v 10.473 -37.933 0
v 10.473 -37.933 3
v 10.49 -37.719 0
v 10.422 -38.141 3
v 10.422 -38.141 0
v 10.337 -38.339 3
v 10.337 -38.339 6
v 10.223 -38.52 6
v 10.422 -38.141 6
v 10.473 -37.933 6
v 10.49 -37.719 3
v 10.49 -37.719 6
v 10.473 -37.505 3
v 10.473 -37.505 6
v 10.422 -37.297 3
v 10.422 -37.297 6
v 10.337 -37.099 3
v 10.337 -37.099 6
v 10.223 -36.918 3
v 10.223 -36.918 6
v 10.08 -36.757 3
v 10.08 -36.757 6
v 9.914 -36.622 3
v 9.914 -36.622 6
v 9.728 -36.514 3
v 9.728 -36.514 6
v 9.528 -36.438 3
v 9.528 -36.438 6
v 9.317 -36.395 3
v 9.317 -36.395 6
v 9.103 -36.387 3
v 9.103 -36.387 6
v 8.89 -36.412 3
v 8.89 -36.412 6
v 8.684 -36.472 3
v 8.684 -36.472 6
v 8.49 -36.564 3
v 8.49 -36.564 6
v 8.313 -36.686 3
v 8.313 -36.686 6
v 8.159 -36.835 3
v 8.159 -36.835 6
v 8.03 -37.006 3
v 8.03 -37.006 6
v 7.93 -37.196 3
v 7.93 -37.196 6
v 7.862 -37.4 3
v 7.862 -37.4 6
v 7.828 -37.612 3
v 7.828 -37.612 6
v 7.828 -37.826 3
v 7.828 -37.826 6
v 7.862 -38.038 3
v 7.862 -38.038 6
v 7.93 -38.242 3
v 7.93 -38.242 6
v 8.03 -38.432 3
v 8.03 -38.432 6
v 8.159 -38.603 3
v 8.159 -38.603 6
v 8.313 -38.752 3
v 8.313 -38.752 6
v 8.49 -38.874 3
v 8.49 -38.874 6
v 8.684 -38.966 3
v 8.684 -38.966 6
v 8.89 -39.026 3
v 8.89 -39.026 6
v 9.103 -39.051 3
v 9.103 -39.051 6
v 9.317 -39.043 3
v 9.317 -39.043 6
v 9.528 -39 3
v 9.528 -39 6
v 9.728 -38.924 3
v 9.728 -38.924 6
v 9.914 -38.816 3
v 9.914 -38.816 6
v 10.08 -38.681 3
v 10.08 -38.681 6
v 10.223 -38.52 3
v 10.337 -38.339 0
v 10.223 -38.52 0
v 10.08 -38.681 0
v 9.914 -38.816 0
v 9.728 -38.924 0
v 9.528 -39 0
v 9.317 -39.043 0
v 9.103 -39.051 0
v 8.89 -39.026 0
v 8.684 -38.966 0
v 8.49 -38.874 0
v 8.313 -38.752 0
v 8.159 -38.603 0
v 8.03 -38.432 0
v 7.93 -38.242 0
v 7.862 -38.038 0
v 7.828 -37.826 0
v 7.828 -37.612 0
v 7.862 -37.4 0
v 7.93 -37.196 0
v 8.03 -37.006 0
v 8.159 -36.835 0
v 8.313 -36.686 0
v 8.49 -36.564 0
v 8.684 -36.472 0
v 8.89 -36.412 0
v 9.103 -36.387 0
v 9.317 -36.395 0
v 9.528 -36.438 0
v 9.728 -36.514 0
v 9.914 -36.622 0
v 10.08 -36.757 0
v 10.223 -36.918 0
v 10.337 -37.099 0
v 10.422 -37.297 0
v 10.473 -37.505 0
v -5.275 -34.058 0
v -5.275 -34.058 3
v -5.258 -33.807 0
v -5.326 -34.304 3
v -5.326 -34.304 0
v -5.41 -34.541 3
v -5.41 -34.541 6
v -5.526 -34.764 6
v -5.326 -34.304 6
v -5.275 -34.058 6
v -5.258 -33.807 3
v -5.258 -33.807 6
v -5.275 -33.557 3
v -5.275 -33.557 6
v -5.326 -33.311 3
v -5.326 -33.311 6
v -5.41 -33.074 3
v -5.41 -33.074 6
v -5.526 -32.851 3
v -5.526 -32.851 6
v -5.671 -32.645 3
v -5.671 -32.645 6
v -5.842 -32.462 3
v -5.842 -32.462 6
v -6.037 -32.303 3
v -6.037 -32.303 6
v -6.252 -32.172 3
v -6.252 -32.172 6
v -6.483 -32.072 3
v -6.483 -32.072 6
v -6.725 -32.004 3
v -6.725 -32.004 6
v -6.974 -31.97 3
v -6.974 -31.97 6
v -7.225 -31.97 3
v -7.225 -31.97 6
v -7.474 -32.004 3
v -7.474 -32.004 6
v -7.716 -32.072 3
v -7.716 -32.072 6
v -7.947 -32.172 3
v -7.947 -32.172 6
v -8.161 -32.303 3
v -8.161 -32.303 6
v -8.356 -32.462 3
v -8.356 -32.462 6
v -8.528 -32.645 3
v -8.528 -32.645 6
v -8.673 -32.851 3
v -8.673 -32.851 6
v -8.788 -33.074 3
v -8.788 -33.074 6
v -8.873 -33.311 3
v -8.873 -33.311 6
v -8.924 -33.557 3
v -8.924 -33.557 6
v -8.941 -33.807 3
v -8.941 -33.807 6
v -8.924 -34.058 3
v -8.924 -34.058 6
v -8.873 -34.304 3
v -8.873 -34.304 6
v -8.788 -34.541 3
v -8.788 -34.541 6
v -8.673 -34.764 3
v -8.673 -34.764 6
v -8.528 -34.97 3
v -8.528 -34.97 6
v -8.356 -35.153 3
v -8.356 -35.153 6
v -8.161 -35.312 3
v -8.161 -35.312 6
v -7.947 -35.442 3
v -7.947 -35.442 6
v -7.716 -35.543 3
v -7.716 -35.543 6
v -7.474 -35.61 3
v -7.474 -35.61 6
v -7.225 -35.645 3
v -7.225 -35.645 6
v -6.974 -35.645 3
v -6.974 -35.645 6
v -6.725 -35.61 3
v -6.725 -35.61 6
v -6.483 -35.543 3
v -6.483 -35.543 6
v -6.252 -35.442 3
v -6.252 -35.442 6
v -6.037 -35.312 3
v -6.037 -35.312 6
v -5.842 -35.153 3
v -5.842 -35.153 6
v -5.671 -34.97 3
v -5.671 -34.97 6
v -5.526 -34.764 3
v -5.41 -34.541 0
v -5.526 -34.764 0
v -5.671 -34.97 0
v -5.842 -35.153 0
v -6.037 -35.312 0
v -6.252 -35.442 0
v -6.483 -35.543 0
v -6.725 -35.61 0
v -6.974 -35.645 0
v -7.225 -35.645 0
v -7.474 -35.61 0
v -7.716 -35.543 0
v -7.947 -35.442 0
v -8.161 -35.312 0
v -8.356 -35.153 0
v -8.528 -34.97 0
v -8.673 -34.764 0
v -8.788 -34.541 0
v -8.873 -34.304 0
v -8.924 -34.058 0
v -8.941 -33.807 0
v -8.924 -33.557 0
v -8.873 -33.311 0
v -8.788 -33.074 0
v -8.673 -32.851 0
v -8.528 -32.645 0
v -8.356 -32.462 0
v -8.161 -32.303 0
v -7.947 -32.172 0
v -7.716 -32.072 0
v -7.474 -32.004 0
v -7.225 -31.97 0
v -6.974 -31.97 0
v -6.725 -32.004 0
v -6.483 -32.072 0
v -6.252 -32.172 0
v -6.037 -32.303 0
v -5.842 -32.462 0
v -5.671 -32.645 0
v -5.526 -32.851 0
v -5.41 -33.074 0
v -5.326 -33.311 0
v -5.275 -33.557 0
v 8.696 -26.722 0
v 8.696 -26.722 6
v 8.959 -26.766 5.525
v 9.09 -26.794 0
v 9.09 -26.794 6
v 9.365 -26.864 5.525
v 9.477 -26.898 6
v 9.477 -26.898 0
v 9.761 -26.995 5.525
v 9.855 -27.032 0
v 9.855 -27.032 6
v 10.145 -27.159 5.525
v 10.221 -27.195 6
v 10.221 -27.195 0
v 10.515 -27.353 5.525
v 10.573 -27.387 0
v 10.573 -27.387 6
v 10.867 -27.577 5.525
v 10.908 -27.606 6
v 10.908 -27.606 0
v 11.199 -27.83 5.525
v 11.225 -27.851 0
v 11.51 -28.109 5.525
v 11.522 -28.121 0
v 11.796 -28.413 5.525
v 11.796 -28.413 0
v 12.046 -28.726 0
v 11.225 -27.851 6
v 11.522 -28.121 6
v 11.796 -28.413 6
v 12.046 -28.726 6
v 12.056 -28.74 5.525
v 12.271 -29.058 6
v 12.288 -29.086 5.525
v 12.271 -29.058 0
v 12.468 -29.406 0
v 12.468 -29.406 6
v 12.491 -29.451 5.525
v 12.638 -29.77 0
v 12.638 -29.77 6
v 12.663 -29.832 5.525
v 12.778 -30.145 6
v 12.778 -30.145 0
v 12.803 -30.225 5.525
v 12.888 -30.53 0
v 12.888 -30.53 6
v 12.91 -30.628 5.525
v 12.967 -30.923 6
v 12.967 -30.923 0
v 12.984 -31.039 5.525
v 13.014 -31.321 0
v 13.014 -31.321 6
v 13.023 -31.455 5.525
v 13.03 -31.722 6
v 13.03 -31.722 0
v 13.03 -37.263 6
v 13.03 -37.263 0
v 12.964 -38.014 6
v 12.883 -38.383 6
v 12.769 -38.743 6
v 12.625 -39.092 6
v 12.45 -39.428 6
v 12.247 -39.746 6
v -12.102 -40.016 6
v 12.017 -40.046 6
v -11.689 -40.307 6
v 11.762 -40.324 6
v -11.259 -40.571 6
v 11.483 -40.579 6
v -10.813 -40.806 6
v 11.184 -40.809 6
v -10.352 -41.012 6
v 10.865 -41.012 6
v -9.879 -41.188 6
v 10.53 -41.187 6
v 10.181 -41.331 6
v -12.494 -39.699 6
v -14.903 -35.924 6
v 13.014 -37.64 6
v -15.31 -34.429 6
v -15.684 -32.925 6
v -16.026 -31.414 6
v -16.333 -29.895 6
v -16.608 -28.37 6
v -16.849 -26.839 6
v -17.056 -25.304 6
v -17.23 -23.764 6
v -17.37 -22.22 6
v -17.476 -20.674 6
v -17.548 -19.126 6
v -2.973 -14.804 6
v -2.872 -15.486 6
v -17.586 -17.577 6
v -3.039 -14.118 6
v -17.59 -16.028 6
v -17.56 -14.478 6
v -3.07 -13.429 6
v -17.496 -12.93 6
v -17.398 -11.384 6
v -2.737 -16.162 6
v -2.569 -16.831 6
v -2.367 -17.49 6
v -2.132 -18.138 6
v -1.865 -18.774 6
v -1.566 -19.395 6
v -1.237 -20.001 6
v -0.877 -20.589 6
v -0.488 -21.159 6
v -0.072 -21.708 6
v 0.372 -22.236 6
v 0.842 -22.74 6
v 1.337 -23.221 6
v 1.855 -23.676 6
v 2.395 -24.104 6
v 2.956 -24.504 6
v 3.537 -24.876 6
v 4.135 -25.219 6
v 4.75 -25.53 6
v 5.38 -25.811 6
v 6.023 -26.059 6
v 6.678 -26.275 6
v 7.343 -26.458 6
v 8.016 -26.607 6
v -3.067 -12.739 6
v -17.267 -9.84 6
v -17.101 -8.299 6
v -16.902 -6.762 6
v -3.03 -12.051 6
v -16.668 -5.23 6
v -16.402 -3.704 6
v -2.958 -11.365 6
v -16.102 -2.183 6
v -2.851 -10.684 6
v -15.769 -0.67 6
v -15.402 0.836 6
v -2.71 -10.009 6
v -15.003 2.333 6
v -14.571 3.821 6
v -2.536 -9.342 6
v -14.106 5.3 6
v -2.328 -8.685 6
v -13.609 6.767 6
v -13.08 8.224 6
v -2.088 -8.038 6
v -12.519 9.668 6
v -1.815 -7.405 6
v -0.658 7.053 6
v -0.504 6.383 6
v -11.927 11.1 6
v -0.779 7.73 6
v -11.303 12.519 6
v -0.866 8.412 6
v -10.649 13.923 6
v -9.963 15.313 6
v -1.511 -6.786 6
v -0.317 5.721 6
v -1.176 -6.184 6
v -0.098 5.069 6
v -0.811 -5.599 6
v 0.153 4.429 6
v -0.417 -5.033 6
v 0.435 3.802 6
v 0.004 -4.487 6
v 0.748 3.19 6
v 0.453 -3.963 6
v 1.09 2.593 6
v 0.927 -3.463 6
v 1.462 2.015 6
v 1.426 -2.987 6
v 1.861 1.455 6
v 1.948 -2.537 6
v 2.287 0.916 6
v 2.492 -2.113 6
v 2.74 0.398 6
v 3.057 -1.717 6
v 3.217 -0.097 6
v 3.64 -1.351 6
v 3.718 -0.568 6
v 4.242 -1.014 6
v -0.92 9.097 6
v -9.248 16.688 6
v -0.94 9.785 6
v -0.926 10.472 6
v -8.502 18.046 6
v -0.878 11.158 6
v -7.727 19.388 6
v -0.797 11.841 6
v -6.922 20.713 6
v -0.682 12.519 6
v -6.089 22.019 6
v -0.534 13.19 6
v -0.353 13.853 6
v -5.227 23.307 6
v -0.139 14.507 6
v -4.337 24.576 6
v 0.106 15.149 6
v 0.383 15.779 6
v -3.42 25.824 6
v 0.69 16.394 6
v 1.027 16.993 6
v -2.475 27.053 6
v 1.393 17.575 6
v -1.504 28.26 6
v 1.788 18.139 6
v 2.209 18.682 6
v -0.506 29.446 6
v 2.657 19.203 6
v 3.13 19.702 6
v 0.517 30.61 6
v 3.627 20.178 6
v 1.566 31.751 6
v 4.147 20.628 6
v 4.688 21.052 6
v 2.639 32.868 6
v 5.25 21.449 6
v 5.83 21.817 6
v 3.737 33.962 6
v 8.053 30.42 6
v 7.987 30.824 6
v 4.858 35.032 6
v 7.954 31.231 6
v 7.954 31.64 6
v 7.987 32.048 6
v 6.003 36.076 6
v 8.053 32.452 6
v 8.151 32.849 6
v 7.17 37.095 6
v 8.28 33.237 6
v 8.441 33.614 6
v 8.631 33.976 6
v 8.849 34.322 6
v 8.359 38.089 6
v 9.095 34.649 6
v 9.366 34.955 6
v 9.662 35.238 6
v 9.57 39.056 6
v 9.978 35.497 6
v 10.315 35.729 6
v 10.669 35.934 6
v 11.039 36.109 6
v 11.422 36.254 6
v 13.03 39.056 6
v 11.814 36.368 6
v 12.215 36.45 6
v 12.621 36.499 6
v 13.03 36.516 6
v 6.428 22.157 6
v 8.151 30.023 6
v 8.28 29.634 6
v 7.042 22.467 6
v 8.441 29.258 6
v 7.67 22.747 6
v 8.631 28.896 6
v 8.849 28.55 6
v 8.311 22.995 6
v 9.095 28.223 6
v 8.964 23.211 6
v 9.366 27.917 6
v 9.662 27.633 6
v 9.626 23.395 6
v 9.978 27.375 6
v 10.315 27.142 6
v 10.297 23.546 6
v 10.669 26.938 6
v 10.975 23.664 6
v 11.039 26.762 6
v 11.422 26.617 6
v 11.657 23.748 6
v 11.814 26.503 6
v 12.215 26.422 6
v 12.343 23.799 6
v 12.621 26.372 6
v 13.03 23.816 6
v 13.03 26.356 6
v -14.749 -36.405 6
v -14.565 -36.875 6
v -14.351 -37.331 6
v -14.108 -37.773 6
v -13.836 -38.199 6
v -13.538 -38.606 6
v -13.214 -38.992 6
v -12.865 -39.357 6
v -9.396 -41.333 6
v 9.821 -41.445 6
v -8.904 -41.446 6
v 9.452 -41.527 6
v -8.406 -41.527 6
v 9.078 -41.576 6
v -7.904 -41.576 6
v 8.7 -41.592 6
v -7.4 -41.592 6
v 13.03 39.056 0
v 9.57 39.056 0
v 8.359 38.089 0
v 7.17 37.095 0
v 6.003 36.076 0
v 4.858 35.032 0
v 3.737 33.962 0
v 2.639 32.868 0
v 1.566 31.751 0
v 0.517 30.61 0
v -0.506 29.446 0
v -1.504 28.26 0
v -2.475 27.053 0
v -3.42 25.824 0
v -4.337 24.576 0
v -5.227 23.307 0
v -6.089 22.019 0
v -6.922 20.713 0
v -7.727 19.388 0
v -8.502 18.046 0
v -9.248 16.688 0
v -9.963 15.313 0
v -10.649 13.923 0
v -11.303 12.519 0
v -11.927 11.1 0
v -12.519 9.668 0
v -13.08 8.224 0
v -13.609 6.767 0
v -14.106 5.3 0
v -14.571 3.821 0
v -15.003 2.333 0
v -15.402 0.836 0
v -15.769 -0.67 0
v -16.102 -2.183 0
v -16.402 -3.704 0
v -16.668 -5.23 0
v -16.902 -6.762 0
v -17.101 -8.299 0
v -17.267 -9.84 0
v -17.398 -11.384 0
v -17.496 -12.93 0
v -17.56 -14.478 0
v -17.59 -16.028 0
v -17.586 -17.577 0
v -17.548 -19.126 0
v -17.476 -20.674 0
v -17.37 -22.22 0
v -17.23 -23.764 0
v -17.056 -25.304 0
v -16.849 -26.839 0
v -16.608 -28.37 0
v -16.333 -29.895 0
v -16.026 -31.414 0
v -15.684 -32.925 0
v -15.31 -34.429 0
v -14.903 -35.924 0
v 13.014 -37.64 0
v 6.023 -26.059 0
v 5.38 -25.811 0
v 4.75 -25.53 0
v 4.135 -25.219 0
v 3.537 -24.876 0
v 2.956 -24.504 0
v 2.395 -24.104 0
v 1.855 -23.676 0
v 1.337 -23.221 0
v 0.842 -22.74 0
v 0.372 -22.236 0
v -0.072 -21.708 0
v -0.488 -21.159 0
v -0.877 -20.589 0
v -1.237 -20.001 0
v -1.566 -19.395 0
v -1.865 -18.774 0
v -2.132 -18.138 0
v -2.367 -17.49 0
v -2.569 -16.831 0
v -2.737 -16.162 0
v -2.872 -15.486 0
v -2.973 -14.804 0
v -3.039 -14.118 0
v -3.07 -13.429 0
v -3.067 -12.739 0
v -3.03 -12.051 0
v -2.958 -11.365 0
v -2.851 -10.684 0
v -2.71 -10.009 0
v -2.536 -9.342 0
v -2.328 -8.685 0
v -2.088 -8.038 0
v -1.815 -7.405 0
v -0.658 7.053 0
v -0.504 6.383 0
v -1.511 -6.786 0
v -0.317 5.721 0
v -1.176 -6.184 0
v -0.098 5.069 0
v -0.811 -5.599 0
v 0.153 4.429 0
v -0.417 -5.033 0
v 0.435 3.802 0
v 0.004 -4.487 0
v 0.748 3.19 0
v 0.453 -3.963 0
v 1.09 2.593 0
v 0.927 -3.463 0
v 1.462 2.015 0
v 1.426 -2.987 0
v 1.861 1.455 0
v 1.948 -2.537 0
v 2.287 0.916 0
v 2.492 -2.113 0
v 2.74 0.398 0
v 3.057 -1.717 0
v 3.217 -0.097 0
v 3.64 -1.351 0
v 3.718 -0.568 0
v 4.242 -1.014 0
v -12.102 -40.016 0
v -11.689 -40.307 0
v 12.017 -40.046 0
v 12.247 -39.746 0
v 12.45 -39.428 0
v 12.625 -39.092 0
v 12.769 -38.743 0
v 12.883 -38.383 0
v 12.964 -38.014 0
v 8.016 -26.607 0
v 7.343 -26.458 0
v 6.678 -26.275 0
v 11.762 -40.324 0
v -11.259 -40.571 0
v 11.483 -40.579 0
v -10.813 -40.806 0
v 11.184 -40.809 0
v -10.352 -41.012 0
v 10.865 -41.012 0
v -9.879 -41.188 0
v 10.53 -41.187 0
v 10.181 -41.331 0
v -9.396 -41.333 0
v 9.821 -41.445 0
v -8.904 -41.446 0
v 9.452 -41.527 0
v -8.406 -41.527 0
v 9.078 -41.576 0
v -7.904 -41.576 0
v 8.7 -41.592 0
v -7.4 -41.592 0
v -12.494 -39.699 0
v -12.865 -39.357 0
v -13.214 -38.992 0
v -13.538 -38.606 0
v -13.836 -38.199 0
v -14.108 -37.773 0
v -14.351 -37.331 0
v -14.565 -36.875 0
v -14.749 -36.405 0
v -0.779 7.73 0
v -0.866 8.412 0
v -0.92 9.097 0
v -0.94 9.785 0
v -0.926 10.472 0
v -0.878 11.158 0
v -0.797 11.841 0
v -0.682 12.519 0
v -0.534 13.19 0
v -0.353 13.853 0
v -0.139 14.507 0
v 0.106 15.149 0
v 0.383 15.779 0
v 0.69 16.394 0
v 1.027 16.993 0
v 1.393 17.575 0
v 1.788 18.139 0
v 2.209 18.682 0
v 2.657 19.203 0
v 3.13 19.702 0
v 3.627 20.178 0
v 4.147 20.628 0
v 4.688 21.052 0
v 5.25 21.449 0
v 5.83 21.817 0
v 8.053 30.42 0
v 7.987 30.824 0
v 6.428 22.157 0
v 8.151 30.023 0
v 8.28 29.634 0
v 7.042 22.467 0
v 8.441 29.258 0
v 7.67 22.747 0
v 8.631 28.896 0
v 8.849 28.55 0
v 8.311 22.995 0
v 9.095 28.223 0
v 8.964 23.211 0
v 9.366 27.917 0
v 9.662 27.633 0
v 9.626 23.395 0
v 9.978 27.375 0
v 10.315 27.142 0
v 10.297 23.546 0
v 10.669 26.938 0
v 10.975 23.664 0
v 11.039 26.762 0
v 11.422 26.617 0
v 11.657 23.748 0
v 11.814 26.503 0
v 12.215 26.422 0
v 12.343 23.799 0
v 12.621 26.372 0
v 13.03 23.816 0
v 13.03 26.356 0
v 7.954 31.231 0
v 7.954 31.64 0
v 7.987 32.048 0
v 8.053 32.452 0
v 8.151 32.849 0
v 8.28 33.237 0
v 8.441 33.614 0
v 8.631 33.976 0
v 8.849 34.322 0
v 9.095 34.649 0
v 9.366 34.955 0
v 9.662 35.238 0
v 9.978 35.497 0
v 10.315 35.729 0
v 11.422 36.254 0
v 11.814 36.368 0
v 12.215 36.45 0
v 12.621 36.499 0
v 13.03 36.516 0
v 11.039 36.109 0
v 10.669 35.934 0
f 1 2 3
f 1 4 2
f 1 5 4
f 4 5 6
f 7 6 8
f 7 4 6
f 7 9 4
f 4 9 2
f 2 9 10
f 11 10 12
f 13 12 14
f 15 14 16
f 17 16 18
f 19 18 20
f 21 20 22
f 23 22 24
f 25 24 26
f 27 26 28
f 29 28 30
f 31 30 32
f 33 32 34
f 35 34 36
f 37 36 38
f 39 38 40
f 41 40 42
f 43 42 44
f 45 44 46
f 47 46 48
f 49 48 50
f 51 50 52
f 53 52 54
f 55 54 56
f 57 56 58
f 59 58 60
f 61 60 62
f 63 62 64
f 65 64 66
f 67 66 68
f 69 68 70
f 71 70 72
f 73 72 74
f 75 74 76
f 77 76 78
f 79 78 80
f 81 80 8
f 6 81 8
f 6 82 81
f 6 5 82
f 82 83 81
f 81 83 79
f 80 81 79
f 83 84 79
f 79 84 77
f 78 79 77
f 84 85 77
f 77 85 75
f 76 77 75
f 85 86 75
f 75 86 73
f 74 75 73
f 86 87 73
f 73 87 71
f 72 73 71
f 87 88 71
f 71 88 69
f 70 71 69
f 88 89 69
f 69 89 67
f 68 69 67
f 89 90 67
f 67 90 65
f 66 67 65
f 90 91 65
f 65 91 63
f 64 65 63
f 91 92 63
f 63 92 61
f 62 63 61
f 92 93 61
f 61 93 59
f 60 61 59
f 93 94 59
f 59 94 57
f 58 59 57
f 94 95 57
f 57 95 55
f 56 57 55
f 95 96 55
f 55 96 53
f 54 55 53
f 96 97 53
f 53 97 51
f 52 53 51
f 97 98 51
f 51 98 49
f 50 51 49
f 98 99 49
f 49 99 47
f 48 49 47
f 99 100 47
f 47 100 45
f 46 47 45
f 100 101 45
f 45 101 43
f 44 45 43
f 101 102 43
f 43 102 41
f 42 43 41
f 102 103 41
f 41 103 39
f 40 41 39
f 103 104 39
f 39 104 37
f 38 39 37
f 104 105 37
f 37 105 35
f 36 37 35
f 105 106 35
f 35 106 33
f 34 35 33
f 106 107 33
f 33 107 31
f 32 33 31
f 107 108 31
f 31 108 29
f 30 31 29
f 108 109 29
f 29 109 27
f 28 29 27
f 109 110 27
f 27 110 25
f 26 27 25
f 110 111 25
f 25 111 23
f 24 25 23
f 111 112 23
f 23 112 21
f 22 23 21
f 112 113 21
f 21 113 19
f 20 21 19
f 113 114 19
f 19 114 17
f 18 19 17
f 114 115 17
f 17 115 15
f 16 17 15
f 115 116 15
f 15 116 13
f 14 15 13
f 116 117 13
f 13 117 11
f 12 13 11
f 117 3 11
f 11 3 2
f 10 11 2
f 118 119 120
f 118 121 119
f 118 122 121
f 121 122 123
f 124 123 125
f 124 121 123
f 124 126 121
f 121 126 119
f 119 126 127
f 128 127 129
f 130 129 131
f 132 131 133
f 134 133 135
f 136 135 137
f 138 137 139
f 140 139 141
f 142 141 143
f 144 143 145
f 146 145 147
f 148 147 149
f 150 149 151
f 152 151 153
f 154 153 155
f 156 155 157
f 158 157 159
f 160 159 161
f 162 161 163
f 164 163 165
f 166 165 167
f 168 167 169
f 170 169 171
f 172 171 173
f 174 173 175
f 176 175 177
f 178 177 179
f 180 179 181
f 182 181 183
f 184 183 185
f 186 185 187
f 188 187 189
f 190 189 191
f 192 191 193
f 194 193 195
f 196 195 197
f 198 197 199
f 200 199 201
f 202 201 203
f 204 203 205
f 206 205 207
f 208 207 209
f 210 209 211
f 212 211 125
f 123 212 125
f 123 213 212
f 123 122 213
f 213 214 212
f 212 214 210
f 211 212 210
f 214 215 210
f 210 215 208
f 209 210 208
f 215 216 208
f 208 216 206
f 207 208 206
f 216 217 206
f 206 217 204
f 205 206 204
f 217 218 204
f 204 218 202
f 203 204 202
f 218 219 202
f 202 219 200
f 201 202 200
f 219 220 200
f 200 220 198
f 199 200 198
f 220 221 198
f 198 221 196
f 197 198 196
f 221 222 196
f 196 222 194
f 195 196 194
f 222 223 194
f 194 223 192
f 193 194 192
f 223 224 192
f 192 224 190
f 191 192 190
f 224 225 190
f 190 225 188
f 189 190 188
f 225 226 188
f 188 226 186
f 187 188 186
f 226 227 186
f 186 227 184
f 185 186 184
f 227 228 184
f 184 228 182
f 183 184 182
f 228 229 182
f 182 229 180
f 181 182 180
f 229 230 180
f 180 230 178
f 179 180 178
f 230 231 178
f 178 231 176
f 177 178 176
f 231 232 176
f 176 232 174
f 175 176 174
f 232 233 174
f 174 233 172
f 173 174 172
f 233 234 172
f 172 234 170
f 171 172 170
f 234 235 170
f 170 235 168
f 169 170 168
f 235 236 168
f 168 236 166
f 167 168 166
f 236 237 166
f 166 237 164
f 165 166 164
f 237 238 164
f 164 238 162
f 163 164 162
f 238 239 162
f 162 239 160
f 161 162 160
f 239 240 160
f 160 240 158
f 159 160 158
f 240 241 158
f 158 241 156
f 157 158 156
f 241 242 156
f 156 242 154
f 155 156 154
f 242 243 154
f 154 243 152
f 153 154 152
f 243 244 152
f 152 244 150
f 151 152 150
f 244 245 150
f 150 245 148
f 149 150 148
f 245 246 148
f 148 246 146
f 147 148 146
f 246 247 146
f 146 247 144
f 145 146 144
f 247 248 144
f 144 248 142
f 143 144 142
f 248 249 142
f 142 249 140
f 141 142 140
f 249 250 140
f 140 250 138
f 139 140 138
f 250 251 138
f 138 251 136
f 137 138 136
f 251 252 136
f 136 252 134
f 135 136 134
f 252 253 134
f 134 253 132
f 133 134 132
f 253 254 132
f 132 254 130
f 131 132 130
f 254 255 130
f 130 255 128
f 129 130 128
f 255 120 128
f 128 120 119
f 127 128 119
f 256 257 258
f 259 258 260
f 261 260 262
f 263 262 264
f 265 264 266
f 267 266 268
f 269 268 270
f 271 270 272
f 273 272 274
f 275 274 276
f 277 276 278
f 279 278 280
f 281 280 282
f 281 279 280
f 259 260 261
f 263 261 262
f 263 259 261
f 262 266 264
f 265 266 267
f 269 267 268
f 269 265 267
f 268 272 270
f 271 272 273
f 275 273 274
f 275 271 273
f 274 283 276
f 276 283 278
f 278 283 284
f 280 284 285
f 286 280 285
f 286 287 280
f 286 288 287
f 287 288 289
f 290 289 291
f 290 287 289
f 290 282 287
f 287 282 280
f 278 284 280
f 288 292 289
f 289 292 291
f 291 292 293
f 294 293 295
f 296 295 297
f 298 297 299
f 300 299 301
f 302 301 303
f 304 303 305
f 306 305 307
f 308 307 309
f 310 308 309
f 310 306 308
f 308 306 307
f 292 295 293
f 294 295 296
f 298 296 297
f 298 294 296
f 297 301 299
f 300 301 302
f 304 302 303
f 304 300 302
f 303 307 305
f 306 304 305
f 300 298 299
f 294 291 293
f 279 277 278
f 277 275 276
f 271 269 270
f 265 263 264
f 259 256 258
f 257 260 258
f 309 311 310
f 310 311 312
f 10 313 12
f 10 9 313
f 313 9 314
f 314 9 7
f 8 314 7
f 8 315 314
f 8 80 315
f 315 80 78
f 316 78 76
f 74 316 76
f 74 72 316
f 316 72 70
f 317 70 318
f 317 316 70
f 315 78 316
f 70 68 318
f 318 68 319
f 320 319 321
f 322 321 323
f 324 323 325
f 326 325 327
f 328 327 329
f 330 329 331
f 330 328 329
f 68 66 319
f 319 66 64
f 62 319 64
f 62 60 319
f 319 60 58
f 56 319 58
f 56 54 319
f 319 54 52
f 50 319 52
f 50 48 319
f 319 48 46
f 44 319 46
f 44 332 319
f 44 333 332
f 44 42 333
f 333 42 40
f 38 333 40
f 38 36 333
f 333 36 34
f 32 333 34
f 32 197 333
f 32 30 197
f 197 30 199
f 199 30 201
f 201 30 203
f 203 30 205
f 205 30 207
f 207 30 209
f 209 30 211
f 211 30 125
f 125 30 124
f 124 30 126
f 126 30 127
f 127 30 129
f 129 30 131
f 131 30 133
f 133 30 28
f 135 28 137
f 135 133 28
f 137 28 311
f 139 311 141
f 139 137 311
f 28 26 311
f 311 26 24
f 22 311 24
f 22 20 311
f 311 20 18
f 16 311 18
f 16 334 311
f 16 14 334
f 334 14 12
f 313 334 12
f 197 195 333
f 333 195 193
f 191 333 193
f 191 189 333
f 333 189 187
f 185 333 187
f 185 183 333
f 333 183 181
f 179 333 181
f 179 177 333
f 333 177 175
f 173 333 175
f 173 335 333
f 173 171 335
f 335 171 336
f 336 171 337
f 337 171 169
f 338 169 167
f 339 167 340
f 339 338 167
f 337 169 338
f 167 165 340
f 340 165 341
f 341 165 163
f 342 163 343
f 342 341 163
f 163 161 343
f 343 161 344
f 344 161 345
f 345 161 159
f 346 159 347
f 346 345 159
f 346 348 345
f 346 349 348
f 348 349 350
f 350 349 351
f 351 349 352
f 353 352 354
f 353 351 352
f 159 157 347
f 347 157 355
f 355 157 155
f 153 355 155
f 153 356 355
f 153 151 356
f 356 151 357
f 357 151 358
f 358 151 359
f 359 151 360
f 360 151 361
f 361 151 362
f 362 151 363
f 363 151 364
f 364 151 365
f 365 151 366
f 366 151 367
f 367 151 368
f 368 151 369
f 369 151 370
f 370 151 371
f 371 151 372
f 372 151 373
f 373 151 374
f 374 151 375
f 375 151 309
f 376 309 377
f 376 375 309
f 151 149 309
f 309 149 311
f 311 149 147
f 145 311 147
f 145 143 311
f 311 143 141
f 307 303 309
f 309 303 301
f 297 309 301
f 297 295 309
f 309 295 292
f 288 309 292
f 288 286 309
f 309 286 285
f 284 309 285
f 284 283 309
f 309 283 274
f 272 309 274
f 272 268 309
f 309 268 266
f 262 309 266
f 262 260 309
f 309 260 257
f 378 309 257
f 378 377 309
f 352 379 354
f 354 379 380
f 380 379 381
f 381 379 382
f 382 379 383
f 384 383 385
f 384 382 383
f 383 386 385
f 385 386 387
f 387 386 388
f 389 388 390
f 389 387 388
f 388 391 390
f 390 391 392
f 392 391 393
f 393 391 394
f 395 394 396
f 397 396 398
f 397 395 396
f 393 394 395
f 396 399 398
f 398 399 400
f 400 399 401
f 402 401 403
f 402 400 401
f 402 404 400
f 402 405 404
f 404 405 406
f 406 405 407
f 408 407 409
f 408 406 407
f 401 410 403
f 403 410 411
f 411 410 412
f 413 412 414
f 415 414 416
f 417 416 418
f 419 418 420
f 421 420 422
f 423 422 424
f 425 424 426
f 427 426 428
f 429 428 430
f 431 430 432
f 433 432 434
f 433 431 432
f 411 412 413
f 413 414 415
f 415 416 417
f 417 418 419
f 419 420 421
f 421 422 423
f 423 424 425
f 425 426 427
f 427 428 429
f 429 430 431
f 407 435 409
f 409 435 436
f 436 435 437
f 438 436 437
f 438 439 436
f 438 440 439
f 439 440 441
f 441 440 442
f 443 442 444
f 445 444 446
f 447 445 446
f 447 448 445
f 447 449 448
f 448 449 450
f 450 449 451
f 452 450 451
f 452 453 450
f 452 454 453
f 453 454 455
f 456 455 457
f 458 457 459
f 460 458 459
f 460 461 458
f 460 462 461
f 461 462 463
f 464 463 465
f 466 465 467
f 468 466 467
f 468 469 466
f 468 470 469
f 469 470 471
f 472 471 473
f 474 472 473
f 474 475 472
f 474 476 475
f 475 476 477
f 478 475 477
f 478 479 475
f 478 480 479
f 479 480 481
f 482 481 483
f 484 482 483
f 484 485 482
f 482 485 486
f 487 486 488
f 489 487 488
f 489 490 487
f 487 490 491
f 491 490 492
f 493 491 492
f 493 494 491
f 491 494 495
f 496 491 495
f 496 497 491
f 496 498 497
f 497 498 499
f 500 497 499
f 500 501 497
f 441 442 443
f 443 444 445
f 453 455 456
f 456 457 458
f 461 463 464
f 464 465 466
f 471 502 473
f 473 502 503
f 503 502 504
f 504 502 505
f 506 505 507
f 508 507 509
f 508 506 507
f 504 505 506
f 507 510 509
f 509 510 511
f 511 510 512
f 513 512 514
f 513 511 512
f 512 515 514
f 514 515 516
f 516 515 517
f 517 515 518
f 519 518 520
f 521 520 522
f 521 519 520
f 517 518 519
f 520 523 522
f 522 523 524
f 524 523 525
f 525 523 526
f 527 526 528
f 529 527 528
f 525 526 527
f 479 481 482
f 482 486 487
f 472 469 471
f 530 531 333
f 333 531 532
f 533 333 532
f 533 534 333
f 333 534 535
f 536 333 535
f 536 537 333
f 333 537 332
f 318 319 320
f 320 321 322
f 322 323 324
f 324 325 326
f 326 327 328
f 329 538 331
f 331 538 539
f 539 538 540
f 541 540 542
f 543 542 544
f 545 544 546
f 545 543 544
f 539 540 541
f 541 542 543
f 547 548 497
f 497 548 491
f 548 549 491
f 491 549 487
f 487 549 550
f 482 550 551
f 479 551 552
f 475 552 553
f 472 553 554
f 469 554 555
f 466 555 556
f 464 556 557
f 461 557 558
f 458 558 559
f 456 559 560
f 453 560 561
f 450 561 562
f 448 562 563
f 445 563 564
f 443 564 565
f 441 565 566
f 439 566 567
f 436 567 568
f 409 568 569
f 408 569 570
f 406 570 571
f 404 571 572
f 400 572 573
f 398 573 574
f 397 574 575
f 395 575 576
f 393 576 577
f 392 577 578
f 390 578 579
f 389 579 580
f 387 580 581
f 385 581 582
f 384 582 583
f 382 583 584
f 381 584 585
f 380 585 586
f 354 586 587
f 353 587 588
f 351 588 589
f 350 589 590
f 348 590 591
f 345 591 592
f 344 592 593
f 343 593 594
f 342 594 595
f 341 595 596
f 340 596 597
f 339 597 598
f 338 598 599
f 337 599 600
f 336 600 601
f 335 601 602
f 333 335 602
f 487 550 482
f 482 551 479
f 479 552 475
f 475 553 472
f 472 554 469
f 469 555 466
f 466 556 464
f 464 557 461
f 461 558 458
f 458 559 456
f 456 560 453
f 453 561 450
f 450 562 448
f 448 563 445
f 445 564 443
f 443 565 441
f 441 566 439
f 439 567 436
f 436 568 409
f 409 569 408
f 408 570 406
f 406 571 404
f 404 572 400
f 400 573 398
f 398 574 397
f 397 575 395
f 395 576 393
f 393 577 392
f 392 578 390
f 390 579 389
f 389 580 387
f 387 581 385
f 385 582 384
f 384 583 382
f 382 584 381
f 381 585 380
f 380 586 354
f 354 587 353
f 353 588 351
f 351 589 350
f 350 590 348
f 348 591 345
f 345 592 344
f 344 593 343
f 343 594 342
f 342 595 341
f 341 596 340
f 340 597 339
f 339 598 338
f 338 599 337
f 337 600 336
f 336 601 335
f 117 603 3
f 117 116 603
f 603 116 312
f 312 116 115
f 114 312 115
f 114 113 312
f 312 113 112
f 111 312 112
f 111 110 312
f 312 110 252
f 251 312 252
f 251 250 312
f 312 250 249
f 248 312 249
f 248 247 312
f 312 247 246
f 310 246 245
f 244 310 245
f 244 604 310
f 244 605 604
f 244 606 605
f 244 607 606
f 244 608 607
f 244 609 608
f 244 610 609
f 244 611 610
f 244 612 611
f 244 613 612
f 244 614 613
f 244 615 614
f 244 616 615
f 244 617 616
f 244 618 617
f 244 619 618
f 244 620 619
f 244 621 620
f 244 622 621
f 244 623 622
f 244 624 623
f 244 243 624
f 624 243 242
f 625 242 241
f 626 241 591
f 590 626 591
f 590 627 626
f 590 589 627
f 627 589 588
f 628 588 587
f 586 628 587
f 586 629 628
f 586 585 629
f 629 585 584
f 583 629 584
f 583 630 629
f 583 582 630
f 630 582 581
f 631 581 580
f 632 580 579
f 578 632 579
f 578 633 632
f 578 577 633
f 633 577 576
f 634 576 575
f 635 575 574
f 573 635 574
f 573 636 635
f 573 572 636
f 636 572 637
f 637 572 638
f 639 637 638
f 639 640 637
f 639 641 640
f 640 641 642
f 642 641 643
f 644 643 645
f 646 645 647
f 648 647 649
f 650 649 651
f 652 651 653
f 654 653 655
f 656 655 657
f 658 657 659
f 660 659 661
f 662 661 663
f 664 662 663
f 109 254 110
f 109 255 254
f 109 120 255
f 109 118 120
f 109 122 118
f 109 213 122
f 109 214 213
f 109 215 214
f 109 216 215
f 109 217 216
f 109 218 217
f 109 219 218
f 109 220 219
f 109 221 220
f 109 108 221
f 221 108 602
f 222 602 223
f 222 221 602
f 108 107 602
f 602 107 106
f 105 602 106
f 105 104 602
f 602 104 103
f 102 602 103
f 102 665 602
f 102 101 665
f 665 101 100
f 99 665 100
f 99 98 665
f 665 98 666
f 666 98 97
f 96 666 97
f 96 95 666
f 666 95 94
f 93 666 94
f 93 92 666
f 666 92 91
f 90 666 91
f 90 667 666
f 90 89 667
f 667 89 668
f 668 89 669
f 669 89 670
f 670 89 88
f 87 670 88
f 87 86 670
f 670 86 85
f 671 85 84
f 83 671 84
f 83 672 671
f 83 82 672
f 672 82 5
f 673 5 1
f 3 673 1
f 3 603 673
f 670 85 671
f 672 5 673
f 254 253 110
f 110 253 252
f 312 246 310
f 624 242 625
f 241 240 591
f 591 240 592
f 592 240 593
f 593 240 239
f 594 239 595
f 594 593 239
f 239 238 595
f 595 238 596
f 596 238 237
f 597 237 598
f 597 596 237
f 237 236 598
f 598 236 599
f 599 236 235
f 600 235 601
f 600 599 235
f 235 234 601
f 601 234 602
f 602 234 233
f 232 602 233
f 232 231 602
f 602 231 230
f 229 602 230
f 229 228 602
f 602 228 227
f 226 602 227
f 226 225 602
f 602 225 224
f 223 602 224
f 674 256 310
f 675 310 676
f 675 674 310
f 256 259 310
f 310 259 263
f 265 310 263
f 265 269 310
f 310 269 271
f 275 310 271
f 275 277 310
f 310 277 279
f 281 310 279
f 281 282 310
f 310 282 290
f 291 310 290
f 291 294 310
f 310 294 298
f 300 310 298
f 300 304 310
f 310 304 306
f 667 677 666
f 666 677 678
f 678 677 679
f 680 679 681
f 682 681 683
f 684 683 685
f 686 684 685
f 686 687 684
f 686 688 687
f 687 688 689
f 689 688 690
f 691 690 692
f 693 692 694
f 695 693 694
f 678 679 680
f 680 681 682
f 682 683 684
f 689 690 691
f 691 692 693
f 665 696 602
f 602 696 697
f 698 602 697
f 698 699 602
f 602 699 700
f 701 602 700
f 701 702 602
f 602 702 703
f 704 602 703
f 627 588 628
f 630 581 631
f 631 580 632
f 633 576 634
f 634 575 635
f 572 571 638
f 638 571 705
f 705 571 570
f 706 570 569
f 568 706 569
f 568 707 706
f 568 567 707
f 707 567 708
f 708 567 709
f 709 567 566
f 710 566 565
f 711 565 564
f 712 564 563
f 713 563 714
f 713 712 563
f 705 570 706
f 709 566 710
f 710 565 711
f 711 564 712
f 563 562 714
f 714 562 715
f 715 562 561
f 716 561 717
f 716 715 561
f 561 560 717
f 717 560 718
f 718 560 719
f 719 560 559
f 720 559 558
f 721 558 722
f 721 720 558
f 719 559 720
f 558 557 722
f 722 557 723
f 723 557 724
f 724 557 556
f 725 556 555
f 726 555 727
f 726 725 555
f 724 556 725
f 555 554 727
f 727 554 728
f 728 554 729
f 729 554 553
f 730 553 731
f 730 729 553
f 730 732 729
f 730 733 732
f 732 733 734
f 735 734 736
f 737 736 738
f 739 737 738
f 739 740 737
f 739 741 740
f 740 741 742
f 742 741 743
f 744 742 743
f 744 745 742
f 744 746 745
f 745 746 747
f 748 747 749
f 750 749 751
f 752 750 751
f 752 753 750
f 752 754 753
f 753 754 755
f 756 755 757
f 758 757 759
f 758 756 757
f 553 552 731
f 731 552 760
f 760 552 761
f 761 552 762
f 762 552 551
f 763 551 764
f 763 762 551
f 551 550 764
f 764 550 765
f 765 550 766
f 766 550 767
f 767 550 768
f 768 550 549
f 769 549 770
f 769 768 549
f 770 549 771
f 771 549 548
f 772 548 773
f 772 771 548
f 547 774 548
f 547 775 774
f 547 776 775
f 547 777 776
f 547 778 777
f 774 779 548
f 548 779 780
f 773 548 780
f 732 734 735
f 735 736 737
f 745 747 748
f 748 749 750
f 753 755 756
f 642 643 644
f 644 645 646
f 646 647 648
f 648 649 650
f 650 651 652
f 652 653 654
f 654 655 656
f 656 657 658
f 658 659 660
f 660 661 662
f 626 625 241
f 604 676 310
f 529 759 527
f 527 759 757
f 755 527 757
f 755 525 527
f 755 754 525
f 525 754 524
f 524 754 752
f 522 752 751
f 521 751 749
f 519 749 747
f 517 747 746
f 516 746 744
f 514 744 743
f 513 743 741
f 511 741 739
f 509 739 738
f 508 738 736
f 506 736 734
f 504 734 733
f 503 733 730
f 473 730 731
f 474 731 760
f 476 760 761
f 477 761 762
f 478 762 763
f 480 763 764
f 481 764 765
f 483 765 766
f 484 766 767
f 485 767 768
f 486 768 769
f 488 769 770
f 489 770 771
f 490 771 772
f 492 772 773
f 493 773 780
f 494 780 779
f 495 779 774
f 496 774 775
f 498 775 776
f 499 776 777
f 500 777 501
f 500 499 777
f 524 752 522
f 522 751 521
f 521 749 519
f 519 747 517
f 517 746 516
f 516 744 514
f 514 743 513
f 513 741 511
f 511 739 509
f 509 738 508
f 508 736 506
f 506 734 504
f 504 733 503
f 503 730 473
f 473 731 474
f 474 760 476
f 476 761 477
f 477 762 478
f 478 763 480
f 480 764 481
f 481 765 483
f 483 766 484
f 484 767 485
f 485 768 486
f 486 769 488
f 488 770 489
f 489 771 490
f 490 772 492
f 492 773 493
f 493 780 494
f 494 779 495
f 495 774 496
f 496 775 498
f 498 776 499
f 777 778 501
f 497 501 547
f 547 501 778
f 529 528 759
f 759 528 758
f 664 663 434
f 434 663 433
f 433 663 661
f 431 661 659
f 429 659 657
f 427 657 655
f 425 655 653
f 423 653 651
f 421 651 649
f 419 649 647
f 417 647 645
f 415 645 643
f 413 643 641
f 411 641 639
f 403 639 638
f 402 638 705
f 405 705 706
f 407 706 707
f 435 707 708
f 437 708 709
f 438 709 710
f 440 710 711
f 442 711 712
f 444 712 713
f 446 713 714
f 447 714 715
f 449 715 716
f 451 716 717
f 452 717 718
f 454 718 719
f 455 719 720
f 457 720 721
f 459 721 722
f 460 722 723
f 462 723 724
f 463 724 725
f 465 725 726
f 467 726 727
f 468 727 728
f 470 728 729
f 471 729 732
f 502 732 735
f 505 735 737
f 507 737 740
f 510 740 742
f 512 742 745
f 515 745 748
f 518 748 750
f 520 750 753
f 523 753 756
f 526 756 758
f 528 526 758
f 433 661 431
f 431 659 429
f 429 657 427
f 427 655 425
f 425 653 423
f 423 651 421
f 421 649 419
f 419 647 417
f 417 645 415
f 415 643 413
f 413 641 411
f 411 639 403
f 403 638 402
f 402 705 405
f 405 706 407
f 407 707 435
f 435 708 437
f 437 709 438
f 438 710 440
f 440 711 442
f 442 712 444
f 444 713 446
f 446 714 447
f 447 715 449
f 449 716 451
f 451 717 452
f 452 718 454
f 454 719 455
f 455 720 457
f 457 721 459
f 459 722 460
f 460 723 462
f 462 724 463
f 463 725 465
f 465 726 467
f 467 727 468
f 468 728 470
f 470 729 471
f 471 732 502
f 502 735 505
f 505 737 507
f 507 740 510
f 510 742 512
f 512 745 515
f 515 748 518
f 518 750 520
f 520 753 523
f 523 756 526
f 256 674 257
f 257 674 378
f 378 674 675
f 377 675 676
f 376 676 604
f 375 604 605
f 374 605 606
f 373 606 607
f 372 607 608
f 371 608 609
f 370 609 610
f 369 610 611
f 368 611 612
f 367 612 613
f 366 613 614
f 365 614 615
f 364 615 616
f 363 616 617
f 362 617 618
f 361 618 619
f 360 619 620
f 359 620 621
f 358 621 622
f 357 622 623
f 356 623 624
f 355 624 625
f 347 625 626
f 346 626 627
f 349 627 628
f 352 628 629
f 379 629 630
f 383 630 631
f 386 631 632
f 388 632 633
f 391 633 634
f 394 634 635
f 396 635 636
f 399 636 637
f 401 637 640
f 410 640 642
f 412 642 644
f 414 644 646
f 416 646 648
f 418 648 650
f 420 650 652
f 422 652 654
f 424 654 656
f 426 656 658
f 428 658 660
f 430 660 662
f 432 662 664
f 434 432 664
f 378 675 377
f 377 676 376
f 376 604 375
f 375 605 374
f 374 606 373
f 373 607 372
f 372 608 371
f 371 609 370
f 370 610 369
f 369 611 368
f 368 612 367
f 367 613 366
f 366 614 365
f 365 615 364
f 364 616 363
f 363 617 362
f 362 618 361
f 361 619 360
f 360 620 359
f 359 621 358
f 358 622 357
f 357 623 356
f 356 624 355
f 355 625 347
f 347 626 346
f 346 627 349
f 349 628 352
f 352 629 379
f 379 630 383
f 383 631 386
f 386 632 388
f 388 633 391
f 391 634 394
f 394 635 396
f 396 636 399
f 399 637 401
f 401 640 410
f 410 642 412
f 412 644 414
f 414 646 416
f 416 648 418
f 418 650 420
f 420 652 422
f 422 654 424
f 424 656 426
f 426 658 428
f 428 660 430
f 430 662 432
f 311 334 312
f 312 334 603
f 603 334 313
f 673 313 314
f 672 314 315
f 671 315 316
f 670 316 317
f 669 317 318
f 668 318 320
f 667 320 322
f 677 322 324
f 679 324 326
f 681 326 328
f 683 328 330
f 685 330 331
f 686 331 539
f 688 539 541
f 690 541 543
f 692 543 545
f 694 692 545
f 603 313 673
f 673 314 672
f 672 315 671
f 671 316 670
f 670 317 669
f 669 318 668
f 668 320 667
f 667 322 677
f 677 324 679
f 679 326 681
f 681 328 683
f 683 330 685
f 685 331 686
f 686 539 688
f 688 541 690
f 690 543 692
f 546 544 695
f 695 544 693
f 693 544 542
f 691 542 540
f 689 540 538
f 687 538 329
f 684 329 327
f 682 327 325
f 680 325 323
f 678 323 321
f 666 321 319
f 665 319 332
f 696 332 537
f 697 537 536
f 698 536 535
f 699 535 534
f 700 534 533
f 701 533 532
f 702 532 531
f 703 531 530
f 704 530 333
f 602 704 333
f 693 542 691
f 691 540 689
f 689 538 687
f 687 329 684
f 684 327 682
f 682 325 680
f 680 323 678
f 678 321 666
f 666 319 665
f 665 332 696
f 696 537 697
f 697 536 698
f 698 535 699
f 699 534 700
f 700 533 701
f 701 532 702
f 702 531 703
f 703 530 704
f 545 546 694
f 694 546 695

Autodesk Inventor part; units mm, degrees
ref_plane "YZ Plane" through (0, 0, 0) normal (1, 0, 0) x (0, 1, 0)
ref_plane "XZ Plane" through (0, 0, 0) normal (0, 1, 0) x (-1, 0, 0)
ref_plane "XY Plane" through (0, 0, 0) normal (0, 0, 1) x (1, 0, 0)
sketch "Sketch2" plane through (0, 0, 0) normal (0, 0, 1) x (1, 0, 0)
  line L0 (13.0302, 41.5925) -> (13.0302, -41.5925)
  line L1 (13.0302, -41.5925) -> (-13.0302, -41.5925)
  arc A0 (13.0302, 41.5925) -> (-13.0302, -41.5925) centre (53.0449, -16.618) ccw
  point P0 (0, 0)
  point P1 (13.0302, 0)
  point P2 (0, -41.5925)
  dimension "d6" = 26.0604
  dimension "d32" = 70.6374
  dimension "d33" = 83.185
extrude "Extrusion1" add sketch "Sketch2" along normal blind 6
fillet "Fillet2" radius 7.8 1 edges at (-13.0302, -41.5925, 3)
fillet "Fillet3" radius 4.33 1 edges at (13.0302, -41.5925, 3)
sketch "Sketch6" plane through (0, 0, 6) normal (0, 0, 1) x (1, 0, 0)
  line L0 (13.0302, -37.2625) -> (13.0302, 41.5925) projected
  arc A0 (8.7002, -41.5925) -> (13.0302, -37.2625) centre (8.7002, -37.2625) ccw projected
  line L1 (13.0302, -37.2625) -> (13.0302, 41.5925) projected
  arc A1 (13.0302, 41.5925) -> (-14.9029, -35.9244) centre (53.0449, -16.618) ccw projected
  arc A2 (-14.9029, -35.9244) -> (-7.3999, -41.5925) centre (-7.3999, -33.7925) ccw projected
  line L2 (-7.3999, -41.5925) -> (8.7002, -41.5925) projected
  arc A3 (4.2419, -1.0136) -> (13.0302, -26.6511) centre (10.6426, -13.1445) ccw
  line L3 (13.0302, 0.3621) -> (13.0302, -26.6511)
  arc A4 (13.0302, 23.8159) -> (4.2419, -1.0136) centre (13.0302, 9.8459) ccw
  line L4 (13.0302, 0.3621) -> (13.0302, -4.1241)
  line L5 (13.0302, 0.3621) -> (13.0302, 23.8159)
  point P0 (0, 0)
  dimension "d37" = 2.3876
  dimension "d38" = 13.716
  dimension "d39" = 14.732
  dimension "d41" = 50.8
  dimension "d42" = 13.97
extrude "Extrusion4" cut sketch "Sketch6" against normal through all contours A3 A4 L0
sketch "Sketch7" plane through (0, 0, 6) normal (0, 0, 1) x (1, 0, 0)
  arc A0 (13.0302, 23.8159) -> (4.2419, -1.0136) centre (13.0302, 9.8459) ccw projected
  line L0 (13.0302, 23.8159) -> (13.0302, 41.5925) projected
  arc A1 (13.0302, 41.5925) -> (-14.9029, -35.9244) centre (53.0449, -16.618) ccw projected
  arc A2 (-14.9029, -35.9244) -> (-7.3999, -41.5925) centre (-7.3999, -33.7925) ccw projected
  line L1 (-7.3999, -41.5925) -> (8.7002, -41.5925) projected
  arc A3 (8.7002, -41.5925) -> (13.0302, -37.2625) centre (8.7002, -37.2625) ccw projected
  line L2 (13.0302, -37.2625) -> (13.0302, -26.6511) projected
  arc A4 (4.2419, -1.0136) -> (13.0302, -26.6511) centre (10.6426, -13.1445) ccw projected
  line L3 (13.0302, 23.8159) -> (13.0302, 41.5925) projected
  line L4 (13.0302, 23.8159) -> (17.2669, 23.8159) construction
  arc A5 (13.0302, 36.5159) -> (13.0302, 26.3559) centre (13.0302, 31.4359) ccw
  line L5 (13.0302, 36.5159) -> (13.0302, 26.3559)
  point P0 (0, 0)
  dimension "d46" = 10.16
  dimension "d47" = 2.54
extrude "Extrusion5" cut sketch "Sketch7" against normal through all contours A5 L0
sketch "Sketch8" plane through (0, 0, 6) normal (0, 0, 1) x (1, 0, 0)
  arc A0 (13.0302, 36.5159) -> (13.0302, 26.3559) centre (13.0302, 31.4359) ccw projected
  line L0 (13.0302, 36.5159) -> (13.0302, 41.5925) projected
  arc A1 (13.0302, 41.5925) -> (-14.9029, -35.9244) centre (53.0449, -16.618) ccw projected
  arc A2 (-14.9029, -35.9244) -> (-7.3999, -41.5925) centre (-7.3999, -33.7925) ccw projected
  line L1 (-7.3999, -41.5925) -> (8.7002, -41.5925) projected
  arc A3 (8.7002, -41.5925) -> (13.0302, -37.2625) centre (8.7002, -37.2625) ccw projected
  line L2 (13.0302, -37.2625) -> (13.0302, -26.6511) projected
  arc A4 (4.2419, -1.0136) -> (13.0302, -26.6511) centre (10.6426, -13.1445) ccw projected
  arc A5 (13.0302, 23.8159) -> (4.2419, -1.0136) centre (13.0302, 9.8459) ccw projected
  line L3 (13.0302, 23.8159) -> (13.0302, 26.3559) projected
  line L4 (13.0302, 39.0559) -> (9.5701, 39.0559)
  arc A6 (13.0302, 41.5925) -> (-14.9029, -35.9244) centre (53.0449, -16.618) ccw projected
  line L5 (13.0302, 36.5159) -> (13.0302, 41.5925) projected
  point P0 (0, 0)
  dimension "d50" = 2.54
extrude "Extrusion6" cut sketch "Sketch8" against normal through all contours L4 A1 L0
fillet "Fillet4" radius 5.051 1 edges at (13.0302, -26.6511, 3)
sketch "Sketch9" plane through (0, 0, 6) normal (0, 0, 1) x (1, 0, 0)
  arc A0 (13.0302, -31.7215) -> (8.696, -26.7217) centre (7.9792, -31.7215) ccw projected
  arc A1 (4.2419, -1.0136) -> (8.696, -26.7217) centre (10.6426, -13.1445) ccw projected
  arc A2 (13.0302, 23.8159) -> (4.2419, -1.0136) centre (13.0302, 9.8459) ccw projected
  line L0 (13.0302, 23.8159) -> (13.0302, 26.3559) projected
  arc A3 (13.0302, 36.5159) -> (13.0302, 26.3559) centre (13.0302, 31.4359) ccw projected
  arc A4 (9.5701, 39.0559) -> (-14.9029, -35.9244) centre (53.0449, -16.618) ccw projected
  arc A5 (-14.9029, -35.9244) -> (-7.3999, -41.5925) centre (-7.3999, -33.7925) ccw projected
  line L1 (-7.3999, -41.5925) -> (8.7002, -41.5925) projected
  arc A6 (8.7002, -41.5925) -> (13.0302, -37.2625) centre (8.7002, -37.2625) ccw projected
  line L2 (13.0302, -37.2625) -> (13.0302, -31.7215) projected
  circle A7 centre (9.1567, -37.719) radius 1.3335
  circle A8 centre (-7.0993, -33.8074) radius 1.8415
  line L3 (13.0302, 36.5159) -> (13.0302, 39.0559) projected
  line L4 (13.0302, 39.0559) -> (9.5701, 39.0559) projected
  point P0 (0, 0)
  dimension "d54" = 2.54
  dimension "d55" = 2.54
  dimension "d56" = 2.667
  dimension "d57" = 5.9436
  dimension "d58" = 16.256
  dimension "d59" = 3.683
extrude "Extrusion7" cut sketch "Sketch9" against normal through all contours A7 | A8
properties part number "GripperFingersExtended"
